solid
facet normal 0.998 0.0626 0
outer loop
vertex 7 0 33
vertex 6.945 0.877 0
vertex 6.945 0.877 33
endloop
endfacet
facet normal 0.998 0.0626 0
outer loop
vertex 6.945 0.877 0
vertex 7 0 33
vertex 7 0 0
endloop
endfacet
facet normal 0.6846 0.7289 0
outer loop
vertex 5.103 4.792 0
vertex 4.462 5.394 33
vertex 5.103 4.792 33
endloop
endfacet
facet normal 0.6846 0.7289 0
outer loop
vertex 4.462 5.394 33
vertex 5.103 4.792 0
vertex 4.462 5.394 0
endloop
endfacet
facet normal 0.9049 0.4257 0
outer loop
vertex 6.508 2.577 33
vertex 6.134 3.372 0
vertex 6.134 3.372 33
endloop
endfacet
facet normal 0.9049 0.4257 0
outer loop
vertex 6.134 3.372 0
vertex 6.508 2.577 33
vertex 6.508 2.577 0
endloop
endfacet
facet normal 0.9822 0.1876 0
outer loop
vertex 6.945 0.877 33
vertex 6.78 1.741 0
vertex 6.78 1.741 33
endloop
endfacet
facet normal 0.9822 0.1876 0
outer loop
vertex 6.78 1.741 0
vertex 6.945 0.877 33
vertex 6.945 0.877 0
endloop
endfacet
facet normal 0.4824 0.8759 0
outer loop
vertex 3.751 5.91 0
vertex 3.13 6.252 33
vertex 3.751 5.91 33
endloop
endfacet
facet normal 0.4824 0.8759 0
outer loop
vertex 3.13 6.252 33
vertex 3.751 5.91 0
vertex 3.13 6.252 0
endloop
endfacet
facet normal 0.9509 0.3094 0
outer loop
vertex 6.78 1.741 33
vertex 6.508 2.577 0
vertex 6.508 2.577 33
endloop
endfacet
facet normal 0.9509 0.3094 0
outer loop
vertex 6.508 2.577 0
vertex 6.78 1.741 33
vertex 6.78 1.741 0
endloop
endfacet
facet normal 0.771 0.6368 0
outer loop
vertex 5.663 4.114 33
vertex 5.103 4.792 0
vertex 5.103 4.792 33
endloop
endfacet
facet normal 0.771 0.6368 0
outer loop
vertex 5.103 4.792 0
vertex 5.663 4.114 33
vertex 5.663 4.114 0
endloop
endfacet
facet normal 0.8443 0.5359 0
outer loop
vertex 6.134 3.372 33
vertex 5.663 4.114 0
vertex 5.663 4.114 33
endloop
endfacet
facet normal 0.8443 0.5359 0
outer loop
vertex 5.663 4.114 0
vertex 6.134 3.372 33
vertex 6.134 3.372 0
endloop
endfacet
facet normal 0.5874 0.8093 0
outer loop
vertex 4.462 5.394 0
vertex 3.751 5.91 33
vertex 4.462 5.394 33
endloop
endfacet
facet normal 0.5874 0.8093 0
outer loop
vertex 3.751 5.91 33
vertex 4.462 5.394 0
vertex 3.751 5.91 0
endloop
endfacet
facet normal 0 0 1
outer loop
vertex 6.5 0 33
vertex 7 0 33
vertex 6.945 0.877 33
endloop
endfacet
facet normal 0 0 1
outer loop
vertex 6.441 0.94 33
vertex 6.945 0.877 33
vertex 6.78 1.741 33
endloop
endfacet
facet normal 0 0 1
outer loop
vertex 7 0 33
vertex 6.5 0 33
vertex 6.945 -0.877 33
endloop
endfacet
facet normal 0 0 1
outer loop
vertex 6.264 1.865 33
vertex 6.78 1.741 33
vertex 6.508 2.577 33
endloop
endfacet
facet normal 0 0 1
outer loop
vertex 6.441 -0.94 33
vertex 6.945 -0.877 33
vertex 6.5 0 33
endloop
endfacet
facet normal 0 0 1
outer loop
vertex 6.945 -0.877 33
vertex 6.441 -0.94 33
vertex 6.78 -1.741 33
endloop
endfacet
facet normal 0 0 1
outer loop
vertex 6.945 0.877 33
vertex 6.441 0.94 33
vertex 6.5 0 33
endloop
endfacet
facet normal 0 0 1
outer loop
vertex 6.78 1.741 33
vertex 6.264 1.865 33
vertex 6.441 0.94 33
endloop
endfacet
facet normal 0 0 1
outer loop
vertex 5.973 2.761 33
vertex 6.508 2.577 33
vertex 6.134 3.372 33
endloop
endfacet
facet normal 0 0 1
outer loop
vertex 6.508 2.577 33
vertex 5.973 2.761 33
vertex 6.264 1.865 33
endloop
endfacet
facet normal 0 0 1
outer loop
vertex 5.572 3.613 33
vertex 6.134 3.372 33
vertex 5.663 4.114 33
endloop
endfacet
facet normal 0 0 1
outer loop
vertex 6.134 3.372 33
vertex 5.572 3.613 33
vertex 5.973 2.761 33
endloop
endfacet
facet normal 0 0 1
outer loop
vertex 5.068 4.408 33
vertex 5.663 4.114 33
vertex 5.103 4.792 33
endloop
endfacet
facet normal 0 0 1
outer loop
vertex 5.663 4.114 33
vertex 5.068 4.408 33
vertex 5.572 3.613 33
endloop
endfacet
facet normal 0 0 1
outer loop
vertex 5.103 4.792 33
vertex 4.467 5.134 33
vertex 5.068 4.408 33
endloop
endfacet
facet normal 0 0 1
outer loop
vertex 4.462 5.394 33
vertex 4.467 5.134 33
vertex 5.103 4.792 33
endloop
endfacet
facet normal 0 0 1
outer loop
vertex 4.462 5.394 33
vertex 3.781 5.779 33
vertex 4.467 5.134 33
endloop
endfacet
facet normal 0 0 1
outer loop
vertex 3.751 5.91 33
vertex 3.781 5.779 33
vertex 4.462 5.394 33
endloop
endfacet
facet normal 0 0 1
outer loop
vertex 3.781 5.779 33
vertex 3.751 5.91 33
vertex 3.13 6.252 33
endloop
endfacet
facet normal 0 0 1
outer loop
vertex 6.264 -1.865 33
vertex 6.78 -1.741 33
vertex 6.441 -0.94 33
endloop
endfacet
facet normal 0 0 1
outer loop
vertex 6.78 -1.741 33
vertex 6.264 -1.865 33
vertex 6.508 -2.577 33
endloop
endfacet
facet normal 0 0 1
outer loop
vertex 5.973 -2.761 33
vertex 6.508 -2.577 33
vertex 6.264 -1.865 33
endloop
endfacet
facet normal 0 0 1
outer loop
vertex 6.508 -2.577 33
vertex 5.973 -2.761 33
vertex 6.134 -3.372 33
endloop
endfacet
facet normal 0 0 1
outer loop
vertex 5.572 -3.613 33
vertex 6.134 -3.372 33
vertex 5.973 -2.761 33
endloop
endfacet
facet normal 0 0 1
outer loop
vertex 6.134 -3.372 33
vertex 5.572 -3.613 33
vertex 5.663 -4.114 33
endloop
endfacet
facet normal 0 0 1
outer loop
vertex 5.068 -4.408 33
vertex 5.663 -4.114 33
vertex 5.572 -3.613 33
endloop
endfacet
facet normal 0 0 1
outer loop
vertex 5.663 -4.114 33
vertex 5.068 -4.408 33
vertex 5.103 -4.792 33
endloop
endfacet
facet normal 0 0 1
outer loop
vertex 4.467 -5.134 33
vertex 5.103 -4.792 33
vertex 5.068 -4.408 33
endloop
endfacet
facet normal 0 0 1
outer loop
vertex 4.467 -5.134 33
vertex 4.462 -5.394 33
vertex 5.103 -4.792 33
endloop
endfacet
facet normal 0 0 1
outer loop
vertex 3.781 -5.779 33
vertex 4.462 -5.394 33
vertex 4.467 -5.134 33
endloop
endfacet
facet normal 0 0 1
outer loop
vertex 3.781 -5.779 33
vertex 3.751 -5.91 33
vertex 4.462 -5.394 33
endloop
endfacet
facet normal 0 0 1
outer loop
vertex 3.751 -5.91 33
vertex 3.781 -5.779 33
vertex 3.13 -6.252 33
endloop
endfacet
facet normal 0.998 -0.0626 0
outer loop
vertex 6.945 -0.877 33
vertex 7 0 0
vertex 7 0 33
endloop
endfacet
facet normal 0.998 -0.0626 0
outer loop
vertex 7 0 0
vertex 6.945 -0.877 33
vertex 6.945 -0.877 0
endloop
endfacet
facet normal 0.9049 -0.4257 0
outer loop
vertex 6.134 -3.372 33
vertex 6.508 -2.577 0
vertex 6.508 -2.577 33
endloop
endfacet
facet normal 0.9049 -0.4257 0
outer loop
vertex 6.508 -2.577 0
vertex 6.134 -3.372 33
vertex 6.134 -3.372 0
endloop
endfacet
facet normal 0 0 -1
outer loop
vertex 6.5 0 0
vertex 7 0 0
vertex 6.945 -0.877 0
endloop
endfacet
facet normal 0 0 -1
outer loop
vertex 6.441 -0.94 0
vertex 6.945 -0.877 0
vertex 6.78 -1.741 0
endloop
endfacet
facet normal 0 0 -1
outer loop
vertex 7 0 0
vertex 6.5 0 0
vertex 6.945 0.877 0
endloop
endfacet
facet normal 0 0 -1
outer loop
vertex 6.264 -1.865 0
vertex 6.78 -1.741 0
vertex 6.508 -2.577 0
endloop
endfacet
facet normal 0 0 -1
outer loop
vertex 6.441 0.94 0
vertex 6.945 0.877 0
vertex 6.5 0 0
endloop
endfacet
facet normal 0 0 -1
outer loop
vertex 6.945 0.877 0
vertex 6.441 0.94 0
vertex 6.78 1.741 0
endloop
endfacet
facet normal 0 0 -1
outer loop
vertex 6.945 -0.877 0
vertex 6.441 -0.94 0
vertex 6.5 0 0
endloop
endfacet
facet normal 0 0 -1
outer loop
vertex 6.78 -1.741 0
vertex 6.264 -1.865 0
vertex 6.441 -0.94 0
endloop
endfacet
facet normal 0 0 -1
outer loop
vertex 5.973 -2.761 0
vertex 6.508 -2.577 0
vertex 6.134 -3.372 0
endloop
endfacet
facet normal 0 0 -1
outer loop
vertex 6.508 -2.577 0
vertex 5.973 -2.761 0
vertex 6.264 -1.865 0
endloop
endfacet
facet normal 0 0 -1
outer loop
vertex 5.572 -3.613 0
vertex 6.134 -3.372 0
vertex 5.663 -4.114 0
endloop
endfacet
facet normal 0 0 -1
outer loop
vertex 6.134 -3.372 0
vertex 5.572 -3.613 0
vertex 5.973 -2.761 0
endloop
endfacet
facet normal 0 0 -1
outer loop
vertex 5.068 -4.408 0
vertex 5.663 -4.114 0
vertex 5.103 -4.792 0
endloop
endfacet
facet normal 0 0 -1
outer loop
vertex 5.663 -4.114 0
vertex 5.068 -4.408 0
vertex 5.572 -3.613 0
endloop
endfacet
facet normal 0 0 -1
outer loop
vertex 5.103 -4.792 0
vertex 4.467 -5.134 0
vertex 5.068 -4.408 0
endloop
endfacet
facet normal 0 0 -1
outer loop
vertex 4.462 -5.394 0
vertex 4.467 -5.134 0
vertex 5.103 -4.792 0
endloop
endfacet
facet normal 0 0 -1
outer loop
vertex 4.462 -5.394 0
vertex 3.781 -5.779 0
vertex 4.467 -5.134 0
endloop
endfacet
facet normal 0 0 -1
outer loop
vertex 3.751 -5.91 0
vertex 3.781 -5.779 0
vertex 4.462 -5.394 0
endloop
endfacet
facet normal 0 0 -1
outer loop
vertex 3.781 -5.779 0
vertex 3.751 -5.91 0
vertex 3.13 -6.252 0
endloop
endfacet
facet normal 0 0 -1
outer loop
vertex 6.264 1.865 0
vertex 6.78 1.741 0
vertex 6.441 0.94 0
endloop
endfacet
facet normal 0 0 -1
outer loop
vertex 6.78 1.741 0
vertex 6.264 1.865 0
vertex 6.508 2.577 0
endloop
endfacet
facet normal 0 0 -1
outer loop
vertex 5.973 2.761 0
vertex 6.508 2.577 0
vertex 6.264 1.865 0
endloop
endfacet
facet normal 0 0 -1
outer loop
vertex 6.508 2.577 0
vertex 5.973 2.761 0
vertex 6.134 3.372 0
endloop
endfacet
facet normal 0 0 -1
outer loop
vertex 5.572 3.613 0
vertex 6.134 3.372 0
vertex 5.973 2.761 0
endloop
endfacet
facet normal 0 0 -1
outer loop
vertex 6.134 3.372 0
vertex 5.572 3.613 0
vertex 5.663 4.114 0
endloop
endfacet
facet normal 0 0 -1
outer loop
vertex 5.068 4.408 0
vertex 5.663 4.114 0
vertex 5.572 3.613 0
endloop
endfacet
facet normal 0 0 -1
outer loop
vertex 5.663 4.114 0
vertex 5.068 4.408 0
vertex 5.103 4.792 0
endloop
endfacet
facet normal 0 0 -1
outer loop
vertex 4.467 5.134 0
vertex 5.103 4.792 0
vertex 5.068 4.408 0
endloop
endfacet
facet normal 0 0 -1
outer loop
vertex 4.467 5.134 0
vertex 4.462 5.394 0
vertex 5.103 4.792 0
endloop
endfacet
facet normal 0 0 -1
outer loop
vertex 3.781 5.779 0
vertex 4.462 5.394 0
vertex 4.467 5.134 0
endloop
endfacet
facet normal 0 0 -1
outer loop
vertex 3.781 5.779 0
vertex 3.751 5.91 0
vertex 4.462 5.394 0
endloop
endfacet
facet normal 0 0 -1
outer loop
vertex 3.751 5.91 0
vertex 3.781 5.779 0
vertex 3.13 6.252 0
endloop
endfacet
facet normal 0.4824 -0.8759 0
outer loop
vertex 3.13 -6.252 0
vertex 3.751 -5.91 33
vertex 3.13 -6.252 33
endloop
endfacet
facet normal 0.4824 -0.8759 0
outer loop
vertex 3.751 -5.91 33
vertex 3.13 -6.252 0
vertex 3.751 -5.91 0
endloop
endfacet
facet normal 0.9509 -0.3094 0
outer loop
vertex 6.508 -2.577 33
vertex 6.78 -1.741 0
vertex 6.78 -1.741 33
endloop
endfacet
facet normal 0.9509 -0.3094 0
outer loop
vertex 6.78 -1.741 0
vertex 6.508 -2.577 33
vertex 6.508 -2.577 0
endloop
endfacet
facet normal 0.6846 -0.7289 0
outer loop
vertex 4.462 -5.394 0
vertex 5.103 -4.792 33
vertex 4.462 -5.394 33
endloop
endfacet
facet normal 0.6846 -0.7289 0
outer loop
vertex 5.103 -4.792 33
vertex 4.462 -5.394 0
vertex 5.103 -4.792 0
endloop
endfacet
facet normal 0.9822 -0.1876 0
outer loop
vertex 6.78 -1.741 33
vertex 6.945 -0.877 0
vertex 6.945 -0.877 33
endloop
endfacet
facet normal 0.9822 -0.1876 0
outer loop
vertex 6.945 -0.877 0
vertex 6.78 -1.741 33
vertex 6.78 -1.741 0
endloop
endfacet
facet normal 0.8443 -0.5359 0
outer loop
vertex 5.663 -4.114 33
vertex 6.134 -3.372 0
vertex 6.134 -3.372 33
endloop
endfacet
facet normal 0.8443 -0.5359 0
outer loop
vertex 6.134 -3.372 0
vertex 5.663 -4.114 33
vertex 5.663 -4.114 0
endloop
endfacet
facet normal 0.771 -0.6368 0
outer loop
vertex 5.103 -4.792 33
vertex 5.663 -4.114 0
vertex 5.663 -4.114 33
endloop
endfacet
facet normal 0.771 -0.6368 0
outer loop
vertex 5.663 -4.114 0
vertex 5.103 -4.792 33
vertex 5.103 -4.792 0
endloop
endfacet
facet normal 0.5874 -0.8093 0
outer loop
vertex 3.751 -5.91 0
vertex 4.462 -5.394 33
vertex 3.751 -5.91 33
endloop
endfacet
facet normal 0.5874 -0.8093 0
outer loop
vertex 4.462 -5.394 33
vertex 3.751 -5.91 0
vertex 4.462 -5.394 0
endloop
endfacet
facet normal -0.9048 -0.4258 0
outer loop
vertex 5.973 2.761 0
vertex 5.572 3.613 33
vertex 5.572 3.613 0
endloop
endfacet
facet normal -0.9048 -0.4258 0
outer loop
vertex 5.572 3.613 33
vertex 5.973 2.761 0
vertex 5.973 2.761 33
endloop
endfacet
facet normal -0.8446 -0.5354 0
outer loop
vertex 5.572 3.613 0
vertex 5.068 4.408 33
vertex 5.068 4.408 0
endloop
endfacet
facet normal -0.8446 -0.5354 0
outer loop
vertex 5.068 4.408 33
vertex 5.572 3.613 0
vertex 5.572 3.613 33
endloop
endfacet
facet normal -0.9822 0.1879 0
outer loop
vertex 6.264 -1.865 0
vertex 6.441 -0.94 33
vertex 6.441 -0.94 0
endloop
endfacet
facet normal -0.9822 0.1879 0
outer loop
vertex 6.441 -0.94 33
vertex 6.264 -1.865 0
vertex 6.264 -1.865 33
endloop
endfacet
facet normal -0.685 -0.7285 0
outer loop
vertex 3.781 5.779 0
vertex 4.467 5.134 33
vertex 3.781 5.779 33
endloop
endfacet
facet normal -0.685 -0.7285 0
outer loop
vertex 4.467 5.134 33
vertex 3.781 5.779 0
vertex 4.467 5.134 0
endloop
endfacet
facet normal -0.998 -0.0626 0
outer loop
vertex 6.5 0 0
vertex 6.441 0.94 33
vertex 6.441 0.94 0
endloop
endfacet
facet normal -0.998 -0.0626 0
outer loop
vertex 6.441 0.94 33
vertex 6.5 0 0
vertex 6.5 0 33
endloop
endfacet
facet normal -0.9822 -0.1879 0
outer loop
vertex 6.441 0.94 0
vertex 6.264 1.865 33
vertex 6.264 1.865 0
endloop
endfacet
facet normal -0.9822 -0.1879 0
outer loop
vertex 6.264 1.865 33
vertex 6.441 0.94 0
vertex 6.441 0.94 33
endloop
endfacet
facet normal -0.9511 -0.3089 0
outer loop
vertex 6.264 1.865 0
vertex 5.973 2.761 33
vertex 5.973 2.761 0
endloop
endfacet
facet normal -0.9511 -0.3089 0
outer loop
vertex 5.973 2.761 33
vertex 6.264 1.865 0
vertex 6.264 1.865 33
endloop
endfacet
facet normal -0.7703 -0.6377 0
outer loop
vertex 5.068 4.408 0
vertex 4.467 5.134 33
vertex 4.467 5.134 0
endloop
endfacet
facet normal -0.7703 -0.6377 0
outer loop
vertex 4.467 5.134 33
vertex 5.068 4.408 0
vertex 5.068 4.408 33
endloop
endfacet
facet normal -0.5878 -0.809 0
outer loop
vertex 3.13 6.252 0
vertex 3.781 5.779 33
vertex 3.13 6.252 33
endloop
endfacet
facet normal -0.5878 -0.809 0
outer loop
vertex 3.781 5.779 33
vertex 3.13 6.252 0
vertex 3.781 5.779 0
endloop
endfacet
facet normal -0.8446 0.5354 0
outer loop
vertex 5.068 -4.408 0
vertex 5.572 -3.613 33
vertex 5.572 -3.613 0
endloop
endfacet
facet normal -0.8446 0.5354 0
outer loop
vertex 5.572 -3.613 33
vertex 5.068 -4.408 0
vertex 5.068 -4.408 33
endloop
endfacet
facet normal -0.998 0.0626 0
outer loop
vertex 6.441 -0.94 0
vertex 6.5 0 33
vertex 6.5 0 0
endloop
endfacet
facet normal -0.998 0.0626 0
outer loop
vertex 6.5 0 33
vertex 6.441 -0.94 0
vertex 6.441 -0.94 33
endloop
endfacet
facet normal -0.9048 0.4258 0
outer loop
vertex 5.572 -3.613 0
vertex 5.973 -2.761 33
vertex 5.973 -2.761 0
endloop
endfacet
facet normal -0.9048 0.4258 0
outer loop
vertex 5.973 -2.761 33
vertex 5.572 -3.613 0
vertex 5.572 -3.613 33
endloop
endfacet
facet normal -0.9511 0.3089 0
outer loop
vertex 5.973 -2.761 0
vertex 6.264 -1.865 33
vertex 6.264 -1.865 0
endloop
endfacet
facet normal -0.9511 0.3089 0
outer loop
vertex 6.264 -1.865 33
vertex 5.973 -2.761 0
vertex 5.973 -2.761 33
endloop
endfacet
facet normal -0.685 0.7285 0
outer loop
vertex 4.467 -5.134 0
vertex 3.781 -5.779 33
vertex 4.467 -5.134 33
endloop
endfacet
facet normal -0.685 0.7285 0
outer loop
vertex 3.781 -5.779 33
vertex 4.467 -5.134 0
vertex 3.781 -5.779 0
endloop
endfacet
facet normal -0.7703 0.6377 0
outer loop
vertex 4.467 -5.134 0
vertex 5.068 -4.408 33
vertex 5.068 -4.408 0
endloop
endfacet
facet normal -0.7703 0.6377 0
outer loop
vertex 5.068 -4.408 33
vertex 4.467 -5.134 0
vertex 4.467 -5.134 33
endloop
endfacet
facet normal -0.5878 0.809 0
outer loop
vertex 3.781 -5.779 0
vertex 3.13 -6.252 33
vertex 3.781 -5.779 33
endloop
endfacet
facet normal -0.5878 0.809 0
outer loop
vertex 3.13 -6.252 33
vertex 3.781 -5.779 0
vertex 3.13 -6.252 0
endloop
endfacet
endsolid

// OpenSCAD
$fn = 50;


difference() {
	union() {
		cylinder(h = 33, r = 7.0000000000);
		translate(v = [-4.0000000000, 0, 0]) {
			cylinder(h = 33, r = 7.0000000000);
		}
	}
	union() {
		cylinder(h = 33, r = 3.2500000000);
		cylinder(h = 33, r = 1.8000000000);
		cylinder(h = 33, r = 1.8000000000);
		cylinder(h = 33, r = 1.8000000000);
		translate(v = [-8.5000000000, 0, 0]) {
			hull() {
				translate(v = [-3.7500000000, 0.0000000000, 0]) {
					cylinder(h = 33, r = 7.5000000000);
				}
				translate(v = [3.7500000000, 0.0000000000, 0]) {
					cylinder(h = 33, r = 7.5000000000);
				}
				translate(v = [-3.7500000000, -0.0000000000, 0]) {
					cylinder(h = 33, r = 7.5000000000);
				}
				translate(v = [3.7500000000, -0.0000000000, 0]) {
					cylinder(h = 33, r = 7.5000000000);
				}
			}
		}
		translate(v = [-1.0000000000, 0, 0.0000000000]) {
			cylinder(h = 33, r = 7.5000000000);
		}
	}
}
